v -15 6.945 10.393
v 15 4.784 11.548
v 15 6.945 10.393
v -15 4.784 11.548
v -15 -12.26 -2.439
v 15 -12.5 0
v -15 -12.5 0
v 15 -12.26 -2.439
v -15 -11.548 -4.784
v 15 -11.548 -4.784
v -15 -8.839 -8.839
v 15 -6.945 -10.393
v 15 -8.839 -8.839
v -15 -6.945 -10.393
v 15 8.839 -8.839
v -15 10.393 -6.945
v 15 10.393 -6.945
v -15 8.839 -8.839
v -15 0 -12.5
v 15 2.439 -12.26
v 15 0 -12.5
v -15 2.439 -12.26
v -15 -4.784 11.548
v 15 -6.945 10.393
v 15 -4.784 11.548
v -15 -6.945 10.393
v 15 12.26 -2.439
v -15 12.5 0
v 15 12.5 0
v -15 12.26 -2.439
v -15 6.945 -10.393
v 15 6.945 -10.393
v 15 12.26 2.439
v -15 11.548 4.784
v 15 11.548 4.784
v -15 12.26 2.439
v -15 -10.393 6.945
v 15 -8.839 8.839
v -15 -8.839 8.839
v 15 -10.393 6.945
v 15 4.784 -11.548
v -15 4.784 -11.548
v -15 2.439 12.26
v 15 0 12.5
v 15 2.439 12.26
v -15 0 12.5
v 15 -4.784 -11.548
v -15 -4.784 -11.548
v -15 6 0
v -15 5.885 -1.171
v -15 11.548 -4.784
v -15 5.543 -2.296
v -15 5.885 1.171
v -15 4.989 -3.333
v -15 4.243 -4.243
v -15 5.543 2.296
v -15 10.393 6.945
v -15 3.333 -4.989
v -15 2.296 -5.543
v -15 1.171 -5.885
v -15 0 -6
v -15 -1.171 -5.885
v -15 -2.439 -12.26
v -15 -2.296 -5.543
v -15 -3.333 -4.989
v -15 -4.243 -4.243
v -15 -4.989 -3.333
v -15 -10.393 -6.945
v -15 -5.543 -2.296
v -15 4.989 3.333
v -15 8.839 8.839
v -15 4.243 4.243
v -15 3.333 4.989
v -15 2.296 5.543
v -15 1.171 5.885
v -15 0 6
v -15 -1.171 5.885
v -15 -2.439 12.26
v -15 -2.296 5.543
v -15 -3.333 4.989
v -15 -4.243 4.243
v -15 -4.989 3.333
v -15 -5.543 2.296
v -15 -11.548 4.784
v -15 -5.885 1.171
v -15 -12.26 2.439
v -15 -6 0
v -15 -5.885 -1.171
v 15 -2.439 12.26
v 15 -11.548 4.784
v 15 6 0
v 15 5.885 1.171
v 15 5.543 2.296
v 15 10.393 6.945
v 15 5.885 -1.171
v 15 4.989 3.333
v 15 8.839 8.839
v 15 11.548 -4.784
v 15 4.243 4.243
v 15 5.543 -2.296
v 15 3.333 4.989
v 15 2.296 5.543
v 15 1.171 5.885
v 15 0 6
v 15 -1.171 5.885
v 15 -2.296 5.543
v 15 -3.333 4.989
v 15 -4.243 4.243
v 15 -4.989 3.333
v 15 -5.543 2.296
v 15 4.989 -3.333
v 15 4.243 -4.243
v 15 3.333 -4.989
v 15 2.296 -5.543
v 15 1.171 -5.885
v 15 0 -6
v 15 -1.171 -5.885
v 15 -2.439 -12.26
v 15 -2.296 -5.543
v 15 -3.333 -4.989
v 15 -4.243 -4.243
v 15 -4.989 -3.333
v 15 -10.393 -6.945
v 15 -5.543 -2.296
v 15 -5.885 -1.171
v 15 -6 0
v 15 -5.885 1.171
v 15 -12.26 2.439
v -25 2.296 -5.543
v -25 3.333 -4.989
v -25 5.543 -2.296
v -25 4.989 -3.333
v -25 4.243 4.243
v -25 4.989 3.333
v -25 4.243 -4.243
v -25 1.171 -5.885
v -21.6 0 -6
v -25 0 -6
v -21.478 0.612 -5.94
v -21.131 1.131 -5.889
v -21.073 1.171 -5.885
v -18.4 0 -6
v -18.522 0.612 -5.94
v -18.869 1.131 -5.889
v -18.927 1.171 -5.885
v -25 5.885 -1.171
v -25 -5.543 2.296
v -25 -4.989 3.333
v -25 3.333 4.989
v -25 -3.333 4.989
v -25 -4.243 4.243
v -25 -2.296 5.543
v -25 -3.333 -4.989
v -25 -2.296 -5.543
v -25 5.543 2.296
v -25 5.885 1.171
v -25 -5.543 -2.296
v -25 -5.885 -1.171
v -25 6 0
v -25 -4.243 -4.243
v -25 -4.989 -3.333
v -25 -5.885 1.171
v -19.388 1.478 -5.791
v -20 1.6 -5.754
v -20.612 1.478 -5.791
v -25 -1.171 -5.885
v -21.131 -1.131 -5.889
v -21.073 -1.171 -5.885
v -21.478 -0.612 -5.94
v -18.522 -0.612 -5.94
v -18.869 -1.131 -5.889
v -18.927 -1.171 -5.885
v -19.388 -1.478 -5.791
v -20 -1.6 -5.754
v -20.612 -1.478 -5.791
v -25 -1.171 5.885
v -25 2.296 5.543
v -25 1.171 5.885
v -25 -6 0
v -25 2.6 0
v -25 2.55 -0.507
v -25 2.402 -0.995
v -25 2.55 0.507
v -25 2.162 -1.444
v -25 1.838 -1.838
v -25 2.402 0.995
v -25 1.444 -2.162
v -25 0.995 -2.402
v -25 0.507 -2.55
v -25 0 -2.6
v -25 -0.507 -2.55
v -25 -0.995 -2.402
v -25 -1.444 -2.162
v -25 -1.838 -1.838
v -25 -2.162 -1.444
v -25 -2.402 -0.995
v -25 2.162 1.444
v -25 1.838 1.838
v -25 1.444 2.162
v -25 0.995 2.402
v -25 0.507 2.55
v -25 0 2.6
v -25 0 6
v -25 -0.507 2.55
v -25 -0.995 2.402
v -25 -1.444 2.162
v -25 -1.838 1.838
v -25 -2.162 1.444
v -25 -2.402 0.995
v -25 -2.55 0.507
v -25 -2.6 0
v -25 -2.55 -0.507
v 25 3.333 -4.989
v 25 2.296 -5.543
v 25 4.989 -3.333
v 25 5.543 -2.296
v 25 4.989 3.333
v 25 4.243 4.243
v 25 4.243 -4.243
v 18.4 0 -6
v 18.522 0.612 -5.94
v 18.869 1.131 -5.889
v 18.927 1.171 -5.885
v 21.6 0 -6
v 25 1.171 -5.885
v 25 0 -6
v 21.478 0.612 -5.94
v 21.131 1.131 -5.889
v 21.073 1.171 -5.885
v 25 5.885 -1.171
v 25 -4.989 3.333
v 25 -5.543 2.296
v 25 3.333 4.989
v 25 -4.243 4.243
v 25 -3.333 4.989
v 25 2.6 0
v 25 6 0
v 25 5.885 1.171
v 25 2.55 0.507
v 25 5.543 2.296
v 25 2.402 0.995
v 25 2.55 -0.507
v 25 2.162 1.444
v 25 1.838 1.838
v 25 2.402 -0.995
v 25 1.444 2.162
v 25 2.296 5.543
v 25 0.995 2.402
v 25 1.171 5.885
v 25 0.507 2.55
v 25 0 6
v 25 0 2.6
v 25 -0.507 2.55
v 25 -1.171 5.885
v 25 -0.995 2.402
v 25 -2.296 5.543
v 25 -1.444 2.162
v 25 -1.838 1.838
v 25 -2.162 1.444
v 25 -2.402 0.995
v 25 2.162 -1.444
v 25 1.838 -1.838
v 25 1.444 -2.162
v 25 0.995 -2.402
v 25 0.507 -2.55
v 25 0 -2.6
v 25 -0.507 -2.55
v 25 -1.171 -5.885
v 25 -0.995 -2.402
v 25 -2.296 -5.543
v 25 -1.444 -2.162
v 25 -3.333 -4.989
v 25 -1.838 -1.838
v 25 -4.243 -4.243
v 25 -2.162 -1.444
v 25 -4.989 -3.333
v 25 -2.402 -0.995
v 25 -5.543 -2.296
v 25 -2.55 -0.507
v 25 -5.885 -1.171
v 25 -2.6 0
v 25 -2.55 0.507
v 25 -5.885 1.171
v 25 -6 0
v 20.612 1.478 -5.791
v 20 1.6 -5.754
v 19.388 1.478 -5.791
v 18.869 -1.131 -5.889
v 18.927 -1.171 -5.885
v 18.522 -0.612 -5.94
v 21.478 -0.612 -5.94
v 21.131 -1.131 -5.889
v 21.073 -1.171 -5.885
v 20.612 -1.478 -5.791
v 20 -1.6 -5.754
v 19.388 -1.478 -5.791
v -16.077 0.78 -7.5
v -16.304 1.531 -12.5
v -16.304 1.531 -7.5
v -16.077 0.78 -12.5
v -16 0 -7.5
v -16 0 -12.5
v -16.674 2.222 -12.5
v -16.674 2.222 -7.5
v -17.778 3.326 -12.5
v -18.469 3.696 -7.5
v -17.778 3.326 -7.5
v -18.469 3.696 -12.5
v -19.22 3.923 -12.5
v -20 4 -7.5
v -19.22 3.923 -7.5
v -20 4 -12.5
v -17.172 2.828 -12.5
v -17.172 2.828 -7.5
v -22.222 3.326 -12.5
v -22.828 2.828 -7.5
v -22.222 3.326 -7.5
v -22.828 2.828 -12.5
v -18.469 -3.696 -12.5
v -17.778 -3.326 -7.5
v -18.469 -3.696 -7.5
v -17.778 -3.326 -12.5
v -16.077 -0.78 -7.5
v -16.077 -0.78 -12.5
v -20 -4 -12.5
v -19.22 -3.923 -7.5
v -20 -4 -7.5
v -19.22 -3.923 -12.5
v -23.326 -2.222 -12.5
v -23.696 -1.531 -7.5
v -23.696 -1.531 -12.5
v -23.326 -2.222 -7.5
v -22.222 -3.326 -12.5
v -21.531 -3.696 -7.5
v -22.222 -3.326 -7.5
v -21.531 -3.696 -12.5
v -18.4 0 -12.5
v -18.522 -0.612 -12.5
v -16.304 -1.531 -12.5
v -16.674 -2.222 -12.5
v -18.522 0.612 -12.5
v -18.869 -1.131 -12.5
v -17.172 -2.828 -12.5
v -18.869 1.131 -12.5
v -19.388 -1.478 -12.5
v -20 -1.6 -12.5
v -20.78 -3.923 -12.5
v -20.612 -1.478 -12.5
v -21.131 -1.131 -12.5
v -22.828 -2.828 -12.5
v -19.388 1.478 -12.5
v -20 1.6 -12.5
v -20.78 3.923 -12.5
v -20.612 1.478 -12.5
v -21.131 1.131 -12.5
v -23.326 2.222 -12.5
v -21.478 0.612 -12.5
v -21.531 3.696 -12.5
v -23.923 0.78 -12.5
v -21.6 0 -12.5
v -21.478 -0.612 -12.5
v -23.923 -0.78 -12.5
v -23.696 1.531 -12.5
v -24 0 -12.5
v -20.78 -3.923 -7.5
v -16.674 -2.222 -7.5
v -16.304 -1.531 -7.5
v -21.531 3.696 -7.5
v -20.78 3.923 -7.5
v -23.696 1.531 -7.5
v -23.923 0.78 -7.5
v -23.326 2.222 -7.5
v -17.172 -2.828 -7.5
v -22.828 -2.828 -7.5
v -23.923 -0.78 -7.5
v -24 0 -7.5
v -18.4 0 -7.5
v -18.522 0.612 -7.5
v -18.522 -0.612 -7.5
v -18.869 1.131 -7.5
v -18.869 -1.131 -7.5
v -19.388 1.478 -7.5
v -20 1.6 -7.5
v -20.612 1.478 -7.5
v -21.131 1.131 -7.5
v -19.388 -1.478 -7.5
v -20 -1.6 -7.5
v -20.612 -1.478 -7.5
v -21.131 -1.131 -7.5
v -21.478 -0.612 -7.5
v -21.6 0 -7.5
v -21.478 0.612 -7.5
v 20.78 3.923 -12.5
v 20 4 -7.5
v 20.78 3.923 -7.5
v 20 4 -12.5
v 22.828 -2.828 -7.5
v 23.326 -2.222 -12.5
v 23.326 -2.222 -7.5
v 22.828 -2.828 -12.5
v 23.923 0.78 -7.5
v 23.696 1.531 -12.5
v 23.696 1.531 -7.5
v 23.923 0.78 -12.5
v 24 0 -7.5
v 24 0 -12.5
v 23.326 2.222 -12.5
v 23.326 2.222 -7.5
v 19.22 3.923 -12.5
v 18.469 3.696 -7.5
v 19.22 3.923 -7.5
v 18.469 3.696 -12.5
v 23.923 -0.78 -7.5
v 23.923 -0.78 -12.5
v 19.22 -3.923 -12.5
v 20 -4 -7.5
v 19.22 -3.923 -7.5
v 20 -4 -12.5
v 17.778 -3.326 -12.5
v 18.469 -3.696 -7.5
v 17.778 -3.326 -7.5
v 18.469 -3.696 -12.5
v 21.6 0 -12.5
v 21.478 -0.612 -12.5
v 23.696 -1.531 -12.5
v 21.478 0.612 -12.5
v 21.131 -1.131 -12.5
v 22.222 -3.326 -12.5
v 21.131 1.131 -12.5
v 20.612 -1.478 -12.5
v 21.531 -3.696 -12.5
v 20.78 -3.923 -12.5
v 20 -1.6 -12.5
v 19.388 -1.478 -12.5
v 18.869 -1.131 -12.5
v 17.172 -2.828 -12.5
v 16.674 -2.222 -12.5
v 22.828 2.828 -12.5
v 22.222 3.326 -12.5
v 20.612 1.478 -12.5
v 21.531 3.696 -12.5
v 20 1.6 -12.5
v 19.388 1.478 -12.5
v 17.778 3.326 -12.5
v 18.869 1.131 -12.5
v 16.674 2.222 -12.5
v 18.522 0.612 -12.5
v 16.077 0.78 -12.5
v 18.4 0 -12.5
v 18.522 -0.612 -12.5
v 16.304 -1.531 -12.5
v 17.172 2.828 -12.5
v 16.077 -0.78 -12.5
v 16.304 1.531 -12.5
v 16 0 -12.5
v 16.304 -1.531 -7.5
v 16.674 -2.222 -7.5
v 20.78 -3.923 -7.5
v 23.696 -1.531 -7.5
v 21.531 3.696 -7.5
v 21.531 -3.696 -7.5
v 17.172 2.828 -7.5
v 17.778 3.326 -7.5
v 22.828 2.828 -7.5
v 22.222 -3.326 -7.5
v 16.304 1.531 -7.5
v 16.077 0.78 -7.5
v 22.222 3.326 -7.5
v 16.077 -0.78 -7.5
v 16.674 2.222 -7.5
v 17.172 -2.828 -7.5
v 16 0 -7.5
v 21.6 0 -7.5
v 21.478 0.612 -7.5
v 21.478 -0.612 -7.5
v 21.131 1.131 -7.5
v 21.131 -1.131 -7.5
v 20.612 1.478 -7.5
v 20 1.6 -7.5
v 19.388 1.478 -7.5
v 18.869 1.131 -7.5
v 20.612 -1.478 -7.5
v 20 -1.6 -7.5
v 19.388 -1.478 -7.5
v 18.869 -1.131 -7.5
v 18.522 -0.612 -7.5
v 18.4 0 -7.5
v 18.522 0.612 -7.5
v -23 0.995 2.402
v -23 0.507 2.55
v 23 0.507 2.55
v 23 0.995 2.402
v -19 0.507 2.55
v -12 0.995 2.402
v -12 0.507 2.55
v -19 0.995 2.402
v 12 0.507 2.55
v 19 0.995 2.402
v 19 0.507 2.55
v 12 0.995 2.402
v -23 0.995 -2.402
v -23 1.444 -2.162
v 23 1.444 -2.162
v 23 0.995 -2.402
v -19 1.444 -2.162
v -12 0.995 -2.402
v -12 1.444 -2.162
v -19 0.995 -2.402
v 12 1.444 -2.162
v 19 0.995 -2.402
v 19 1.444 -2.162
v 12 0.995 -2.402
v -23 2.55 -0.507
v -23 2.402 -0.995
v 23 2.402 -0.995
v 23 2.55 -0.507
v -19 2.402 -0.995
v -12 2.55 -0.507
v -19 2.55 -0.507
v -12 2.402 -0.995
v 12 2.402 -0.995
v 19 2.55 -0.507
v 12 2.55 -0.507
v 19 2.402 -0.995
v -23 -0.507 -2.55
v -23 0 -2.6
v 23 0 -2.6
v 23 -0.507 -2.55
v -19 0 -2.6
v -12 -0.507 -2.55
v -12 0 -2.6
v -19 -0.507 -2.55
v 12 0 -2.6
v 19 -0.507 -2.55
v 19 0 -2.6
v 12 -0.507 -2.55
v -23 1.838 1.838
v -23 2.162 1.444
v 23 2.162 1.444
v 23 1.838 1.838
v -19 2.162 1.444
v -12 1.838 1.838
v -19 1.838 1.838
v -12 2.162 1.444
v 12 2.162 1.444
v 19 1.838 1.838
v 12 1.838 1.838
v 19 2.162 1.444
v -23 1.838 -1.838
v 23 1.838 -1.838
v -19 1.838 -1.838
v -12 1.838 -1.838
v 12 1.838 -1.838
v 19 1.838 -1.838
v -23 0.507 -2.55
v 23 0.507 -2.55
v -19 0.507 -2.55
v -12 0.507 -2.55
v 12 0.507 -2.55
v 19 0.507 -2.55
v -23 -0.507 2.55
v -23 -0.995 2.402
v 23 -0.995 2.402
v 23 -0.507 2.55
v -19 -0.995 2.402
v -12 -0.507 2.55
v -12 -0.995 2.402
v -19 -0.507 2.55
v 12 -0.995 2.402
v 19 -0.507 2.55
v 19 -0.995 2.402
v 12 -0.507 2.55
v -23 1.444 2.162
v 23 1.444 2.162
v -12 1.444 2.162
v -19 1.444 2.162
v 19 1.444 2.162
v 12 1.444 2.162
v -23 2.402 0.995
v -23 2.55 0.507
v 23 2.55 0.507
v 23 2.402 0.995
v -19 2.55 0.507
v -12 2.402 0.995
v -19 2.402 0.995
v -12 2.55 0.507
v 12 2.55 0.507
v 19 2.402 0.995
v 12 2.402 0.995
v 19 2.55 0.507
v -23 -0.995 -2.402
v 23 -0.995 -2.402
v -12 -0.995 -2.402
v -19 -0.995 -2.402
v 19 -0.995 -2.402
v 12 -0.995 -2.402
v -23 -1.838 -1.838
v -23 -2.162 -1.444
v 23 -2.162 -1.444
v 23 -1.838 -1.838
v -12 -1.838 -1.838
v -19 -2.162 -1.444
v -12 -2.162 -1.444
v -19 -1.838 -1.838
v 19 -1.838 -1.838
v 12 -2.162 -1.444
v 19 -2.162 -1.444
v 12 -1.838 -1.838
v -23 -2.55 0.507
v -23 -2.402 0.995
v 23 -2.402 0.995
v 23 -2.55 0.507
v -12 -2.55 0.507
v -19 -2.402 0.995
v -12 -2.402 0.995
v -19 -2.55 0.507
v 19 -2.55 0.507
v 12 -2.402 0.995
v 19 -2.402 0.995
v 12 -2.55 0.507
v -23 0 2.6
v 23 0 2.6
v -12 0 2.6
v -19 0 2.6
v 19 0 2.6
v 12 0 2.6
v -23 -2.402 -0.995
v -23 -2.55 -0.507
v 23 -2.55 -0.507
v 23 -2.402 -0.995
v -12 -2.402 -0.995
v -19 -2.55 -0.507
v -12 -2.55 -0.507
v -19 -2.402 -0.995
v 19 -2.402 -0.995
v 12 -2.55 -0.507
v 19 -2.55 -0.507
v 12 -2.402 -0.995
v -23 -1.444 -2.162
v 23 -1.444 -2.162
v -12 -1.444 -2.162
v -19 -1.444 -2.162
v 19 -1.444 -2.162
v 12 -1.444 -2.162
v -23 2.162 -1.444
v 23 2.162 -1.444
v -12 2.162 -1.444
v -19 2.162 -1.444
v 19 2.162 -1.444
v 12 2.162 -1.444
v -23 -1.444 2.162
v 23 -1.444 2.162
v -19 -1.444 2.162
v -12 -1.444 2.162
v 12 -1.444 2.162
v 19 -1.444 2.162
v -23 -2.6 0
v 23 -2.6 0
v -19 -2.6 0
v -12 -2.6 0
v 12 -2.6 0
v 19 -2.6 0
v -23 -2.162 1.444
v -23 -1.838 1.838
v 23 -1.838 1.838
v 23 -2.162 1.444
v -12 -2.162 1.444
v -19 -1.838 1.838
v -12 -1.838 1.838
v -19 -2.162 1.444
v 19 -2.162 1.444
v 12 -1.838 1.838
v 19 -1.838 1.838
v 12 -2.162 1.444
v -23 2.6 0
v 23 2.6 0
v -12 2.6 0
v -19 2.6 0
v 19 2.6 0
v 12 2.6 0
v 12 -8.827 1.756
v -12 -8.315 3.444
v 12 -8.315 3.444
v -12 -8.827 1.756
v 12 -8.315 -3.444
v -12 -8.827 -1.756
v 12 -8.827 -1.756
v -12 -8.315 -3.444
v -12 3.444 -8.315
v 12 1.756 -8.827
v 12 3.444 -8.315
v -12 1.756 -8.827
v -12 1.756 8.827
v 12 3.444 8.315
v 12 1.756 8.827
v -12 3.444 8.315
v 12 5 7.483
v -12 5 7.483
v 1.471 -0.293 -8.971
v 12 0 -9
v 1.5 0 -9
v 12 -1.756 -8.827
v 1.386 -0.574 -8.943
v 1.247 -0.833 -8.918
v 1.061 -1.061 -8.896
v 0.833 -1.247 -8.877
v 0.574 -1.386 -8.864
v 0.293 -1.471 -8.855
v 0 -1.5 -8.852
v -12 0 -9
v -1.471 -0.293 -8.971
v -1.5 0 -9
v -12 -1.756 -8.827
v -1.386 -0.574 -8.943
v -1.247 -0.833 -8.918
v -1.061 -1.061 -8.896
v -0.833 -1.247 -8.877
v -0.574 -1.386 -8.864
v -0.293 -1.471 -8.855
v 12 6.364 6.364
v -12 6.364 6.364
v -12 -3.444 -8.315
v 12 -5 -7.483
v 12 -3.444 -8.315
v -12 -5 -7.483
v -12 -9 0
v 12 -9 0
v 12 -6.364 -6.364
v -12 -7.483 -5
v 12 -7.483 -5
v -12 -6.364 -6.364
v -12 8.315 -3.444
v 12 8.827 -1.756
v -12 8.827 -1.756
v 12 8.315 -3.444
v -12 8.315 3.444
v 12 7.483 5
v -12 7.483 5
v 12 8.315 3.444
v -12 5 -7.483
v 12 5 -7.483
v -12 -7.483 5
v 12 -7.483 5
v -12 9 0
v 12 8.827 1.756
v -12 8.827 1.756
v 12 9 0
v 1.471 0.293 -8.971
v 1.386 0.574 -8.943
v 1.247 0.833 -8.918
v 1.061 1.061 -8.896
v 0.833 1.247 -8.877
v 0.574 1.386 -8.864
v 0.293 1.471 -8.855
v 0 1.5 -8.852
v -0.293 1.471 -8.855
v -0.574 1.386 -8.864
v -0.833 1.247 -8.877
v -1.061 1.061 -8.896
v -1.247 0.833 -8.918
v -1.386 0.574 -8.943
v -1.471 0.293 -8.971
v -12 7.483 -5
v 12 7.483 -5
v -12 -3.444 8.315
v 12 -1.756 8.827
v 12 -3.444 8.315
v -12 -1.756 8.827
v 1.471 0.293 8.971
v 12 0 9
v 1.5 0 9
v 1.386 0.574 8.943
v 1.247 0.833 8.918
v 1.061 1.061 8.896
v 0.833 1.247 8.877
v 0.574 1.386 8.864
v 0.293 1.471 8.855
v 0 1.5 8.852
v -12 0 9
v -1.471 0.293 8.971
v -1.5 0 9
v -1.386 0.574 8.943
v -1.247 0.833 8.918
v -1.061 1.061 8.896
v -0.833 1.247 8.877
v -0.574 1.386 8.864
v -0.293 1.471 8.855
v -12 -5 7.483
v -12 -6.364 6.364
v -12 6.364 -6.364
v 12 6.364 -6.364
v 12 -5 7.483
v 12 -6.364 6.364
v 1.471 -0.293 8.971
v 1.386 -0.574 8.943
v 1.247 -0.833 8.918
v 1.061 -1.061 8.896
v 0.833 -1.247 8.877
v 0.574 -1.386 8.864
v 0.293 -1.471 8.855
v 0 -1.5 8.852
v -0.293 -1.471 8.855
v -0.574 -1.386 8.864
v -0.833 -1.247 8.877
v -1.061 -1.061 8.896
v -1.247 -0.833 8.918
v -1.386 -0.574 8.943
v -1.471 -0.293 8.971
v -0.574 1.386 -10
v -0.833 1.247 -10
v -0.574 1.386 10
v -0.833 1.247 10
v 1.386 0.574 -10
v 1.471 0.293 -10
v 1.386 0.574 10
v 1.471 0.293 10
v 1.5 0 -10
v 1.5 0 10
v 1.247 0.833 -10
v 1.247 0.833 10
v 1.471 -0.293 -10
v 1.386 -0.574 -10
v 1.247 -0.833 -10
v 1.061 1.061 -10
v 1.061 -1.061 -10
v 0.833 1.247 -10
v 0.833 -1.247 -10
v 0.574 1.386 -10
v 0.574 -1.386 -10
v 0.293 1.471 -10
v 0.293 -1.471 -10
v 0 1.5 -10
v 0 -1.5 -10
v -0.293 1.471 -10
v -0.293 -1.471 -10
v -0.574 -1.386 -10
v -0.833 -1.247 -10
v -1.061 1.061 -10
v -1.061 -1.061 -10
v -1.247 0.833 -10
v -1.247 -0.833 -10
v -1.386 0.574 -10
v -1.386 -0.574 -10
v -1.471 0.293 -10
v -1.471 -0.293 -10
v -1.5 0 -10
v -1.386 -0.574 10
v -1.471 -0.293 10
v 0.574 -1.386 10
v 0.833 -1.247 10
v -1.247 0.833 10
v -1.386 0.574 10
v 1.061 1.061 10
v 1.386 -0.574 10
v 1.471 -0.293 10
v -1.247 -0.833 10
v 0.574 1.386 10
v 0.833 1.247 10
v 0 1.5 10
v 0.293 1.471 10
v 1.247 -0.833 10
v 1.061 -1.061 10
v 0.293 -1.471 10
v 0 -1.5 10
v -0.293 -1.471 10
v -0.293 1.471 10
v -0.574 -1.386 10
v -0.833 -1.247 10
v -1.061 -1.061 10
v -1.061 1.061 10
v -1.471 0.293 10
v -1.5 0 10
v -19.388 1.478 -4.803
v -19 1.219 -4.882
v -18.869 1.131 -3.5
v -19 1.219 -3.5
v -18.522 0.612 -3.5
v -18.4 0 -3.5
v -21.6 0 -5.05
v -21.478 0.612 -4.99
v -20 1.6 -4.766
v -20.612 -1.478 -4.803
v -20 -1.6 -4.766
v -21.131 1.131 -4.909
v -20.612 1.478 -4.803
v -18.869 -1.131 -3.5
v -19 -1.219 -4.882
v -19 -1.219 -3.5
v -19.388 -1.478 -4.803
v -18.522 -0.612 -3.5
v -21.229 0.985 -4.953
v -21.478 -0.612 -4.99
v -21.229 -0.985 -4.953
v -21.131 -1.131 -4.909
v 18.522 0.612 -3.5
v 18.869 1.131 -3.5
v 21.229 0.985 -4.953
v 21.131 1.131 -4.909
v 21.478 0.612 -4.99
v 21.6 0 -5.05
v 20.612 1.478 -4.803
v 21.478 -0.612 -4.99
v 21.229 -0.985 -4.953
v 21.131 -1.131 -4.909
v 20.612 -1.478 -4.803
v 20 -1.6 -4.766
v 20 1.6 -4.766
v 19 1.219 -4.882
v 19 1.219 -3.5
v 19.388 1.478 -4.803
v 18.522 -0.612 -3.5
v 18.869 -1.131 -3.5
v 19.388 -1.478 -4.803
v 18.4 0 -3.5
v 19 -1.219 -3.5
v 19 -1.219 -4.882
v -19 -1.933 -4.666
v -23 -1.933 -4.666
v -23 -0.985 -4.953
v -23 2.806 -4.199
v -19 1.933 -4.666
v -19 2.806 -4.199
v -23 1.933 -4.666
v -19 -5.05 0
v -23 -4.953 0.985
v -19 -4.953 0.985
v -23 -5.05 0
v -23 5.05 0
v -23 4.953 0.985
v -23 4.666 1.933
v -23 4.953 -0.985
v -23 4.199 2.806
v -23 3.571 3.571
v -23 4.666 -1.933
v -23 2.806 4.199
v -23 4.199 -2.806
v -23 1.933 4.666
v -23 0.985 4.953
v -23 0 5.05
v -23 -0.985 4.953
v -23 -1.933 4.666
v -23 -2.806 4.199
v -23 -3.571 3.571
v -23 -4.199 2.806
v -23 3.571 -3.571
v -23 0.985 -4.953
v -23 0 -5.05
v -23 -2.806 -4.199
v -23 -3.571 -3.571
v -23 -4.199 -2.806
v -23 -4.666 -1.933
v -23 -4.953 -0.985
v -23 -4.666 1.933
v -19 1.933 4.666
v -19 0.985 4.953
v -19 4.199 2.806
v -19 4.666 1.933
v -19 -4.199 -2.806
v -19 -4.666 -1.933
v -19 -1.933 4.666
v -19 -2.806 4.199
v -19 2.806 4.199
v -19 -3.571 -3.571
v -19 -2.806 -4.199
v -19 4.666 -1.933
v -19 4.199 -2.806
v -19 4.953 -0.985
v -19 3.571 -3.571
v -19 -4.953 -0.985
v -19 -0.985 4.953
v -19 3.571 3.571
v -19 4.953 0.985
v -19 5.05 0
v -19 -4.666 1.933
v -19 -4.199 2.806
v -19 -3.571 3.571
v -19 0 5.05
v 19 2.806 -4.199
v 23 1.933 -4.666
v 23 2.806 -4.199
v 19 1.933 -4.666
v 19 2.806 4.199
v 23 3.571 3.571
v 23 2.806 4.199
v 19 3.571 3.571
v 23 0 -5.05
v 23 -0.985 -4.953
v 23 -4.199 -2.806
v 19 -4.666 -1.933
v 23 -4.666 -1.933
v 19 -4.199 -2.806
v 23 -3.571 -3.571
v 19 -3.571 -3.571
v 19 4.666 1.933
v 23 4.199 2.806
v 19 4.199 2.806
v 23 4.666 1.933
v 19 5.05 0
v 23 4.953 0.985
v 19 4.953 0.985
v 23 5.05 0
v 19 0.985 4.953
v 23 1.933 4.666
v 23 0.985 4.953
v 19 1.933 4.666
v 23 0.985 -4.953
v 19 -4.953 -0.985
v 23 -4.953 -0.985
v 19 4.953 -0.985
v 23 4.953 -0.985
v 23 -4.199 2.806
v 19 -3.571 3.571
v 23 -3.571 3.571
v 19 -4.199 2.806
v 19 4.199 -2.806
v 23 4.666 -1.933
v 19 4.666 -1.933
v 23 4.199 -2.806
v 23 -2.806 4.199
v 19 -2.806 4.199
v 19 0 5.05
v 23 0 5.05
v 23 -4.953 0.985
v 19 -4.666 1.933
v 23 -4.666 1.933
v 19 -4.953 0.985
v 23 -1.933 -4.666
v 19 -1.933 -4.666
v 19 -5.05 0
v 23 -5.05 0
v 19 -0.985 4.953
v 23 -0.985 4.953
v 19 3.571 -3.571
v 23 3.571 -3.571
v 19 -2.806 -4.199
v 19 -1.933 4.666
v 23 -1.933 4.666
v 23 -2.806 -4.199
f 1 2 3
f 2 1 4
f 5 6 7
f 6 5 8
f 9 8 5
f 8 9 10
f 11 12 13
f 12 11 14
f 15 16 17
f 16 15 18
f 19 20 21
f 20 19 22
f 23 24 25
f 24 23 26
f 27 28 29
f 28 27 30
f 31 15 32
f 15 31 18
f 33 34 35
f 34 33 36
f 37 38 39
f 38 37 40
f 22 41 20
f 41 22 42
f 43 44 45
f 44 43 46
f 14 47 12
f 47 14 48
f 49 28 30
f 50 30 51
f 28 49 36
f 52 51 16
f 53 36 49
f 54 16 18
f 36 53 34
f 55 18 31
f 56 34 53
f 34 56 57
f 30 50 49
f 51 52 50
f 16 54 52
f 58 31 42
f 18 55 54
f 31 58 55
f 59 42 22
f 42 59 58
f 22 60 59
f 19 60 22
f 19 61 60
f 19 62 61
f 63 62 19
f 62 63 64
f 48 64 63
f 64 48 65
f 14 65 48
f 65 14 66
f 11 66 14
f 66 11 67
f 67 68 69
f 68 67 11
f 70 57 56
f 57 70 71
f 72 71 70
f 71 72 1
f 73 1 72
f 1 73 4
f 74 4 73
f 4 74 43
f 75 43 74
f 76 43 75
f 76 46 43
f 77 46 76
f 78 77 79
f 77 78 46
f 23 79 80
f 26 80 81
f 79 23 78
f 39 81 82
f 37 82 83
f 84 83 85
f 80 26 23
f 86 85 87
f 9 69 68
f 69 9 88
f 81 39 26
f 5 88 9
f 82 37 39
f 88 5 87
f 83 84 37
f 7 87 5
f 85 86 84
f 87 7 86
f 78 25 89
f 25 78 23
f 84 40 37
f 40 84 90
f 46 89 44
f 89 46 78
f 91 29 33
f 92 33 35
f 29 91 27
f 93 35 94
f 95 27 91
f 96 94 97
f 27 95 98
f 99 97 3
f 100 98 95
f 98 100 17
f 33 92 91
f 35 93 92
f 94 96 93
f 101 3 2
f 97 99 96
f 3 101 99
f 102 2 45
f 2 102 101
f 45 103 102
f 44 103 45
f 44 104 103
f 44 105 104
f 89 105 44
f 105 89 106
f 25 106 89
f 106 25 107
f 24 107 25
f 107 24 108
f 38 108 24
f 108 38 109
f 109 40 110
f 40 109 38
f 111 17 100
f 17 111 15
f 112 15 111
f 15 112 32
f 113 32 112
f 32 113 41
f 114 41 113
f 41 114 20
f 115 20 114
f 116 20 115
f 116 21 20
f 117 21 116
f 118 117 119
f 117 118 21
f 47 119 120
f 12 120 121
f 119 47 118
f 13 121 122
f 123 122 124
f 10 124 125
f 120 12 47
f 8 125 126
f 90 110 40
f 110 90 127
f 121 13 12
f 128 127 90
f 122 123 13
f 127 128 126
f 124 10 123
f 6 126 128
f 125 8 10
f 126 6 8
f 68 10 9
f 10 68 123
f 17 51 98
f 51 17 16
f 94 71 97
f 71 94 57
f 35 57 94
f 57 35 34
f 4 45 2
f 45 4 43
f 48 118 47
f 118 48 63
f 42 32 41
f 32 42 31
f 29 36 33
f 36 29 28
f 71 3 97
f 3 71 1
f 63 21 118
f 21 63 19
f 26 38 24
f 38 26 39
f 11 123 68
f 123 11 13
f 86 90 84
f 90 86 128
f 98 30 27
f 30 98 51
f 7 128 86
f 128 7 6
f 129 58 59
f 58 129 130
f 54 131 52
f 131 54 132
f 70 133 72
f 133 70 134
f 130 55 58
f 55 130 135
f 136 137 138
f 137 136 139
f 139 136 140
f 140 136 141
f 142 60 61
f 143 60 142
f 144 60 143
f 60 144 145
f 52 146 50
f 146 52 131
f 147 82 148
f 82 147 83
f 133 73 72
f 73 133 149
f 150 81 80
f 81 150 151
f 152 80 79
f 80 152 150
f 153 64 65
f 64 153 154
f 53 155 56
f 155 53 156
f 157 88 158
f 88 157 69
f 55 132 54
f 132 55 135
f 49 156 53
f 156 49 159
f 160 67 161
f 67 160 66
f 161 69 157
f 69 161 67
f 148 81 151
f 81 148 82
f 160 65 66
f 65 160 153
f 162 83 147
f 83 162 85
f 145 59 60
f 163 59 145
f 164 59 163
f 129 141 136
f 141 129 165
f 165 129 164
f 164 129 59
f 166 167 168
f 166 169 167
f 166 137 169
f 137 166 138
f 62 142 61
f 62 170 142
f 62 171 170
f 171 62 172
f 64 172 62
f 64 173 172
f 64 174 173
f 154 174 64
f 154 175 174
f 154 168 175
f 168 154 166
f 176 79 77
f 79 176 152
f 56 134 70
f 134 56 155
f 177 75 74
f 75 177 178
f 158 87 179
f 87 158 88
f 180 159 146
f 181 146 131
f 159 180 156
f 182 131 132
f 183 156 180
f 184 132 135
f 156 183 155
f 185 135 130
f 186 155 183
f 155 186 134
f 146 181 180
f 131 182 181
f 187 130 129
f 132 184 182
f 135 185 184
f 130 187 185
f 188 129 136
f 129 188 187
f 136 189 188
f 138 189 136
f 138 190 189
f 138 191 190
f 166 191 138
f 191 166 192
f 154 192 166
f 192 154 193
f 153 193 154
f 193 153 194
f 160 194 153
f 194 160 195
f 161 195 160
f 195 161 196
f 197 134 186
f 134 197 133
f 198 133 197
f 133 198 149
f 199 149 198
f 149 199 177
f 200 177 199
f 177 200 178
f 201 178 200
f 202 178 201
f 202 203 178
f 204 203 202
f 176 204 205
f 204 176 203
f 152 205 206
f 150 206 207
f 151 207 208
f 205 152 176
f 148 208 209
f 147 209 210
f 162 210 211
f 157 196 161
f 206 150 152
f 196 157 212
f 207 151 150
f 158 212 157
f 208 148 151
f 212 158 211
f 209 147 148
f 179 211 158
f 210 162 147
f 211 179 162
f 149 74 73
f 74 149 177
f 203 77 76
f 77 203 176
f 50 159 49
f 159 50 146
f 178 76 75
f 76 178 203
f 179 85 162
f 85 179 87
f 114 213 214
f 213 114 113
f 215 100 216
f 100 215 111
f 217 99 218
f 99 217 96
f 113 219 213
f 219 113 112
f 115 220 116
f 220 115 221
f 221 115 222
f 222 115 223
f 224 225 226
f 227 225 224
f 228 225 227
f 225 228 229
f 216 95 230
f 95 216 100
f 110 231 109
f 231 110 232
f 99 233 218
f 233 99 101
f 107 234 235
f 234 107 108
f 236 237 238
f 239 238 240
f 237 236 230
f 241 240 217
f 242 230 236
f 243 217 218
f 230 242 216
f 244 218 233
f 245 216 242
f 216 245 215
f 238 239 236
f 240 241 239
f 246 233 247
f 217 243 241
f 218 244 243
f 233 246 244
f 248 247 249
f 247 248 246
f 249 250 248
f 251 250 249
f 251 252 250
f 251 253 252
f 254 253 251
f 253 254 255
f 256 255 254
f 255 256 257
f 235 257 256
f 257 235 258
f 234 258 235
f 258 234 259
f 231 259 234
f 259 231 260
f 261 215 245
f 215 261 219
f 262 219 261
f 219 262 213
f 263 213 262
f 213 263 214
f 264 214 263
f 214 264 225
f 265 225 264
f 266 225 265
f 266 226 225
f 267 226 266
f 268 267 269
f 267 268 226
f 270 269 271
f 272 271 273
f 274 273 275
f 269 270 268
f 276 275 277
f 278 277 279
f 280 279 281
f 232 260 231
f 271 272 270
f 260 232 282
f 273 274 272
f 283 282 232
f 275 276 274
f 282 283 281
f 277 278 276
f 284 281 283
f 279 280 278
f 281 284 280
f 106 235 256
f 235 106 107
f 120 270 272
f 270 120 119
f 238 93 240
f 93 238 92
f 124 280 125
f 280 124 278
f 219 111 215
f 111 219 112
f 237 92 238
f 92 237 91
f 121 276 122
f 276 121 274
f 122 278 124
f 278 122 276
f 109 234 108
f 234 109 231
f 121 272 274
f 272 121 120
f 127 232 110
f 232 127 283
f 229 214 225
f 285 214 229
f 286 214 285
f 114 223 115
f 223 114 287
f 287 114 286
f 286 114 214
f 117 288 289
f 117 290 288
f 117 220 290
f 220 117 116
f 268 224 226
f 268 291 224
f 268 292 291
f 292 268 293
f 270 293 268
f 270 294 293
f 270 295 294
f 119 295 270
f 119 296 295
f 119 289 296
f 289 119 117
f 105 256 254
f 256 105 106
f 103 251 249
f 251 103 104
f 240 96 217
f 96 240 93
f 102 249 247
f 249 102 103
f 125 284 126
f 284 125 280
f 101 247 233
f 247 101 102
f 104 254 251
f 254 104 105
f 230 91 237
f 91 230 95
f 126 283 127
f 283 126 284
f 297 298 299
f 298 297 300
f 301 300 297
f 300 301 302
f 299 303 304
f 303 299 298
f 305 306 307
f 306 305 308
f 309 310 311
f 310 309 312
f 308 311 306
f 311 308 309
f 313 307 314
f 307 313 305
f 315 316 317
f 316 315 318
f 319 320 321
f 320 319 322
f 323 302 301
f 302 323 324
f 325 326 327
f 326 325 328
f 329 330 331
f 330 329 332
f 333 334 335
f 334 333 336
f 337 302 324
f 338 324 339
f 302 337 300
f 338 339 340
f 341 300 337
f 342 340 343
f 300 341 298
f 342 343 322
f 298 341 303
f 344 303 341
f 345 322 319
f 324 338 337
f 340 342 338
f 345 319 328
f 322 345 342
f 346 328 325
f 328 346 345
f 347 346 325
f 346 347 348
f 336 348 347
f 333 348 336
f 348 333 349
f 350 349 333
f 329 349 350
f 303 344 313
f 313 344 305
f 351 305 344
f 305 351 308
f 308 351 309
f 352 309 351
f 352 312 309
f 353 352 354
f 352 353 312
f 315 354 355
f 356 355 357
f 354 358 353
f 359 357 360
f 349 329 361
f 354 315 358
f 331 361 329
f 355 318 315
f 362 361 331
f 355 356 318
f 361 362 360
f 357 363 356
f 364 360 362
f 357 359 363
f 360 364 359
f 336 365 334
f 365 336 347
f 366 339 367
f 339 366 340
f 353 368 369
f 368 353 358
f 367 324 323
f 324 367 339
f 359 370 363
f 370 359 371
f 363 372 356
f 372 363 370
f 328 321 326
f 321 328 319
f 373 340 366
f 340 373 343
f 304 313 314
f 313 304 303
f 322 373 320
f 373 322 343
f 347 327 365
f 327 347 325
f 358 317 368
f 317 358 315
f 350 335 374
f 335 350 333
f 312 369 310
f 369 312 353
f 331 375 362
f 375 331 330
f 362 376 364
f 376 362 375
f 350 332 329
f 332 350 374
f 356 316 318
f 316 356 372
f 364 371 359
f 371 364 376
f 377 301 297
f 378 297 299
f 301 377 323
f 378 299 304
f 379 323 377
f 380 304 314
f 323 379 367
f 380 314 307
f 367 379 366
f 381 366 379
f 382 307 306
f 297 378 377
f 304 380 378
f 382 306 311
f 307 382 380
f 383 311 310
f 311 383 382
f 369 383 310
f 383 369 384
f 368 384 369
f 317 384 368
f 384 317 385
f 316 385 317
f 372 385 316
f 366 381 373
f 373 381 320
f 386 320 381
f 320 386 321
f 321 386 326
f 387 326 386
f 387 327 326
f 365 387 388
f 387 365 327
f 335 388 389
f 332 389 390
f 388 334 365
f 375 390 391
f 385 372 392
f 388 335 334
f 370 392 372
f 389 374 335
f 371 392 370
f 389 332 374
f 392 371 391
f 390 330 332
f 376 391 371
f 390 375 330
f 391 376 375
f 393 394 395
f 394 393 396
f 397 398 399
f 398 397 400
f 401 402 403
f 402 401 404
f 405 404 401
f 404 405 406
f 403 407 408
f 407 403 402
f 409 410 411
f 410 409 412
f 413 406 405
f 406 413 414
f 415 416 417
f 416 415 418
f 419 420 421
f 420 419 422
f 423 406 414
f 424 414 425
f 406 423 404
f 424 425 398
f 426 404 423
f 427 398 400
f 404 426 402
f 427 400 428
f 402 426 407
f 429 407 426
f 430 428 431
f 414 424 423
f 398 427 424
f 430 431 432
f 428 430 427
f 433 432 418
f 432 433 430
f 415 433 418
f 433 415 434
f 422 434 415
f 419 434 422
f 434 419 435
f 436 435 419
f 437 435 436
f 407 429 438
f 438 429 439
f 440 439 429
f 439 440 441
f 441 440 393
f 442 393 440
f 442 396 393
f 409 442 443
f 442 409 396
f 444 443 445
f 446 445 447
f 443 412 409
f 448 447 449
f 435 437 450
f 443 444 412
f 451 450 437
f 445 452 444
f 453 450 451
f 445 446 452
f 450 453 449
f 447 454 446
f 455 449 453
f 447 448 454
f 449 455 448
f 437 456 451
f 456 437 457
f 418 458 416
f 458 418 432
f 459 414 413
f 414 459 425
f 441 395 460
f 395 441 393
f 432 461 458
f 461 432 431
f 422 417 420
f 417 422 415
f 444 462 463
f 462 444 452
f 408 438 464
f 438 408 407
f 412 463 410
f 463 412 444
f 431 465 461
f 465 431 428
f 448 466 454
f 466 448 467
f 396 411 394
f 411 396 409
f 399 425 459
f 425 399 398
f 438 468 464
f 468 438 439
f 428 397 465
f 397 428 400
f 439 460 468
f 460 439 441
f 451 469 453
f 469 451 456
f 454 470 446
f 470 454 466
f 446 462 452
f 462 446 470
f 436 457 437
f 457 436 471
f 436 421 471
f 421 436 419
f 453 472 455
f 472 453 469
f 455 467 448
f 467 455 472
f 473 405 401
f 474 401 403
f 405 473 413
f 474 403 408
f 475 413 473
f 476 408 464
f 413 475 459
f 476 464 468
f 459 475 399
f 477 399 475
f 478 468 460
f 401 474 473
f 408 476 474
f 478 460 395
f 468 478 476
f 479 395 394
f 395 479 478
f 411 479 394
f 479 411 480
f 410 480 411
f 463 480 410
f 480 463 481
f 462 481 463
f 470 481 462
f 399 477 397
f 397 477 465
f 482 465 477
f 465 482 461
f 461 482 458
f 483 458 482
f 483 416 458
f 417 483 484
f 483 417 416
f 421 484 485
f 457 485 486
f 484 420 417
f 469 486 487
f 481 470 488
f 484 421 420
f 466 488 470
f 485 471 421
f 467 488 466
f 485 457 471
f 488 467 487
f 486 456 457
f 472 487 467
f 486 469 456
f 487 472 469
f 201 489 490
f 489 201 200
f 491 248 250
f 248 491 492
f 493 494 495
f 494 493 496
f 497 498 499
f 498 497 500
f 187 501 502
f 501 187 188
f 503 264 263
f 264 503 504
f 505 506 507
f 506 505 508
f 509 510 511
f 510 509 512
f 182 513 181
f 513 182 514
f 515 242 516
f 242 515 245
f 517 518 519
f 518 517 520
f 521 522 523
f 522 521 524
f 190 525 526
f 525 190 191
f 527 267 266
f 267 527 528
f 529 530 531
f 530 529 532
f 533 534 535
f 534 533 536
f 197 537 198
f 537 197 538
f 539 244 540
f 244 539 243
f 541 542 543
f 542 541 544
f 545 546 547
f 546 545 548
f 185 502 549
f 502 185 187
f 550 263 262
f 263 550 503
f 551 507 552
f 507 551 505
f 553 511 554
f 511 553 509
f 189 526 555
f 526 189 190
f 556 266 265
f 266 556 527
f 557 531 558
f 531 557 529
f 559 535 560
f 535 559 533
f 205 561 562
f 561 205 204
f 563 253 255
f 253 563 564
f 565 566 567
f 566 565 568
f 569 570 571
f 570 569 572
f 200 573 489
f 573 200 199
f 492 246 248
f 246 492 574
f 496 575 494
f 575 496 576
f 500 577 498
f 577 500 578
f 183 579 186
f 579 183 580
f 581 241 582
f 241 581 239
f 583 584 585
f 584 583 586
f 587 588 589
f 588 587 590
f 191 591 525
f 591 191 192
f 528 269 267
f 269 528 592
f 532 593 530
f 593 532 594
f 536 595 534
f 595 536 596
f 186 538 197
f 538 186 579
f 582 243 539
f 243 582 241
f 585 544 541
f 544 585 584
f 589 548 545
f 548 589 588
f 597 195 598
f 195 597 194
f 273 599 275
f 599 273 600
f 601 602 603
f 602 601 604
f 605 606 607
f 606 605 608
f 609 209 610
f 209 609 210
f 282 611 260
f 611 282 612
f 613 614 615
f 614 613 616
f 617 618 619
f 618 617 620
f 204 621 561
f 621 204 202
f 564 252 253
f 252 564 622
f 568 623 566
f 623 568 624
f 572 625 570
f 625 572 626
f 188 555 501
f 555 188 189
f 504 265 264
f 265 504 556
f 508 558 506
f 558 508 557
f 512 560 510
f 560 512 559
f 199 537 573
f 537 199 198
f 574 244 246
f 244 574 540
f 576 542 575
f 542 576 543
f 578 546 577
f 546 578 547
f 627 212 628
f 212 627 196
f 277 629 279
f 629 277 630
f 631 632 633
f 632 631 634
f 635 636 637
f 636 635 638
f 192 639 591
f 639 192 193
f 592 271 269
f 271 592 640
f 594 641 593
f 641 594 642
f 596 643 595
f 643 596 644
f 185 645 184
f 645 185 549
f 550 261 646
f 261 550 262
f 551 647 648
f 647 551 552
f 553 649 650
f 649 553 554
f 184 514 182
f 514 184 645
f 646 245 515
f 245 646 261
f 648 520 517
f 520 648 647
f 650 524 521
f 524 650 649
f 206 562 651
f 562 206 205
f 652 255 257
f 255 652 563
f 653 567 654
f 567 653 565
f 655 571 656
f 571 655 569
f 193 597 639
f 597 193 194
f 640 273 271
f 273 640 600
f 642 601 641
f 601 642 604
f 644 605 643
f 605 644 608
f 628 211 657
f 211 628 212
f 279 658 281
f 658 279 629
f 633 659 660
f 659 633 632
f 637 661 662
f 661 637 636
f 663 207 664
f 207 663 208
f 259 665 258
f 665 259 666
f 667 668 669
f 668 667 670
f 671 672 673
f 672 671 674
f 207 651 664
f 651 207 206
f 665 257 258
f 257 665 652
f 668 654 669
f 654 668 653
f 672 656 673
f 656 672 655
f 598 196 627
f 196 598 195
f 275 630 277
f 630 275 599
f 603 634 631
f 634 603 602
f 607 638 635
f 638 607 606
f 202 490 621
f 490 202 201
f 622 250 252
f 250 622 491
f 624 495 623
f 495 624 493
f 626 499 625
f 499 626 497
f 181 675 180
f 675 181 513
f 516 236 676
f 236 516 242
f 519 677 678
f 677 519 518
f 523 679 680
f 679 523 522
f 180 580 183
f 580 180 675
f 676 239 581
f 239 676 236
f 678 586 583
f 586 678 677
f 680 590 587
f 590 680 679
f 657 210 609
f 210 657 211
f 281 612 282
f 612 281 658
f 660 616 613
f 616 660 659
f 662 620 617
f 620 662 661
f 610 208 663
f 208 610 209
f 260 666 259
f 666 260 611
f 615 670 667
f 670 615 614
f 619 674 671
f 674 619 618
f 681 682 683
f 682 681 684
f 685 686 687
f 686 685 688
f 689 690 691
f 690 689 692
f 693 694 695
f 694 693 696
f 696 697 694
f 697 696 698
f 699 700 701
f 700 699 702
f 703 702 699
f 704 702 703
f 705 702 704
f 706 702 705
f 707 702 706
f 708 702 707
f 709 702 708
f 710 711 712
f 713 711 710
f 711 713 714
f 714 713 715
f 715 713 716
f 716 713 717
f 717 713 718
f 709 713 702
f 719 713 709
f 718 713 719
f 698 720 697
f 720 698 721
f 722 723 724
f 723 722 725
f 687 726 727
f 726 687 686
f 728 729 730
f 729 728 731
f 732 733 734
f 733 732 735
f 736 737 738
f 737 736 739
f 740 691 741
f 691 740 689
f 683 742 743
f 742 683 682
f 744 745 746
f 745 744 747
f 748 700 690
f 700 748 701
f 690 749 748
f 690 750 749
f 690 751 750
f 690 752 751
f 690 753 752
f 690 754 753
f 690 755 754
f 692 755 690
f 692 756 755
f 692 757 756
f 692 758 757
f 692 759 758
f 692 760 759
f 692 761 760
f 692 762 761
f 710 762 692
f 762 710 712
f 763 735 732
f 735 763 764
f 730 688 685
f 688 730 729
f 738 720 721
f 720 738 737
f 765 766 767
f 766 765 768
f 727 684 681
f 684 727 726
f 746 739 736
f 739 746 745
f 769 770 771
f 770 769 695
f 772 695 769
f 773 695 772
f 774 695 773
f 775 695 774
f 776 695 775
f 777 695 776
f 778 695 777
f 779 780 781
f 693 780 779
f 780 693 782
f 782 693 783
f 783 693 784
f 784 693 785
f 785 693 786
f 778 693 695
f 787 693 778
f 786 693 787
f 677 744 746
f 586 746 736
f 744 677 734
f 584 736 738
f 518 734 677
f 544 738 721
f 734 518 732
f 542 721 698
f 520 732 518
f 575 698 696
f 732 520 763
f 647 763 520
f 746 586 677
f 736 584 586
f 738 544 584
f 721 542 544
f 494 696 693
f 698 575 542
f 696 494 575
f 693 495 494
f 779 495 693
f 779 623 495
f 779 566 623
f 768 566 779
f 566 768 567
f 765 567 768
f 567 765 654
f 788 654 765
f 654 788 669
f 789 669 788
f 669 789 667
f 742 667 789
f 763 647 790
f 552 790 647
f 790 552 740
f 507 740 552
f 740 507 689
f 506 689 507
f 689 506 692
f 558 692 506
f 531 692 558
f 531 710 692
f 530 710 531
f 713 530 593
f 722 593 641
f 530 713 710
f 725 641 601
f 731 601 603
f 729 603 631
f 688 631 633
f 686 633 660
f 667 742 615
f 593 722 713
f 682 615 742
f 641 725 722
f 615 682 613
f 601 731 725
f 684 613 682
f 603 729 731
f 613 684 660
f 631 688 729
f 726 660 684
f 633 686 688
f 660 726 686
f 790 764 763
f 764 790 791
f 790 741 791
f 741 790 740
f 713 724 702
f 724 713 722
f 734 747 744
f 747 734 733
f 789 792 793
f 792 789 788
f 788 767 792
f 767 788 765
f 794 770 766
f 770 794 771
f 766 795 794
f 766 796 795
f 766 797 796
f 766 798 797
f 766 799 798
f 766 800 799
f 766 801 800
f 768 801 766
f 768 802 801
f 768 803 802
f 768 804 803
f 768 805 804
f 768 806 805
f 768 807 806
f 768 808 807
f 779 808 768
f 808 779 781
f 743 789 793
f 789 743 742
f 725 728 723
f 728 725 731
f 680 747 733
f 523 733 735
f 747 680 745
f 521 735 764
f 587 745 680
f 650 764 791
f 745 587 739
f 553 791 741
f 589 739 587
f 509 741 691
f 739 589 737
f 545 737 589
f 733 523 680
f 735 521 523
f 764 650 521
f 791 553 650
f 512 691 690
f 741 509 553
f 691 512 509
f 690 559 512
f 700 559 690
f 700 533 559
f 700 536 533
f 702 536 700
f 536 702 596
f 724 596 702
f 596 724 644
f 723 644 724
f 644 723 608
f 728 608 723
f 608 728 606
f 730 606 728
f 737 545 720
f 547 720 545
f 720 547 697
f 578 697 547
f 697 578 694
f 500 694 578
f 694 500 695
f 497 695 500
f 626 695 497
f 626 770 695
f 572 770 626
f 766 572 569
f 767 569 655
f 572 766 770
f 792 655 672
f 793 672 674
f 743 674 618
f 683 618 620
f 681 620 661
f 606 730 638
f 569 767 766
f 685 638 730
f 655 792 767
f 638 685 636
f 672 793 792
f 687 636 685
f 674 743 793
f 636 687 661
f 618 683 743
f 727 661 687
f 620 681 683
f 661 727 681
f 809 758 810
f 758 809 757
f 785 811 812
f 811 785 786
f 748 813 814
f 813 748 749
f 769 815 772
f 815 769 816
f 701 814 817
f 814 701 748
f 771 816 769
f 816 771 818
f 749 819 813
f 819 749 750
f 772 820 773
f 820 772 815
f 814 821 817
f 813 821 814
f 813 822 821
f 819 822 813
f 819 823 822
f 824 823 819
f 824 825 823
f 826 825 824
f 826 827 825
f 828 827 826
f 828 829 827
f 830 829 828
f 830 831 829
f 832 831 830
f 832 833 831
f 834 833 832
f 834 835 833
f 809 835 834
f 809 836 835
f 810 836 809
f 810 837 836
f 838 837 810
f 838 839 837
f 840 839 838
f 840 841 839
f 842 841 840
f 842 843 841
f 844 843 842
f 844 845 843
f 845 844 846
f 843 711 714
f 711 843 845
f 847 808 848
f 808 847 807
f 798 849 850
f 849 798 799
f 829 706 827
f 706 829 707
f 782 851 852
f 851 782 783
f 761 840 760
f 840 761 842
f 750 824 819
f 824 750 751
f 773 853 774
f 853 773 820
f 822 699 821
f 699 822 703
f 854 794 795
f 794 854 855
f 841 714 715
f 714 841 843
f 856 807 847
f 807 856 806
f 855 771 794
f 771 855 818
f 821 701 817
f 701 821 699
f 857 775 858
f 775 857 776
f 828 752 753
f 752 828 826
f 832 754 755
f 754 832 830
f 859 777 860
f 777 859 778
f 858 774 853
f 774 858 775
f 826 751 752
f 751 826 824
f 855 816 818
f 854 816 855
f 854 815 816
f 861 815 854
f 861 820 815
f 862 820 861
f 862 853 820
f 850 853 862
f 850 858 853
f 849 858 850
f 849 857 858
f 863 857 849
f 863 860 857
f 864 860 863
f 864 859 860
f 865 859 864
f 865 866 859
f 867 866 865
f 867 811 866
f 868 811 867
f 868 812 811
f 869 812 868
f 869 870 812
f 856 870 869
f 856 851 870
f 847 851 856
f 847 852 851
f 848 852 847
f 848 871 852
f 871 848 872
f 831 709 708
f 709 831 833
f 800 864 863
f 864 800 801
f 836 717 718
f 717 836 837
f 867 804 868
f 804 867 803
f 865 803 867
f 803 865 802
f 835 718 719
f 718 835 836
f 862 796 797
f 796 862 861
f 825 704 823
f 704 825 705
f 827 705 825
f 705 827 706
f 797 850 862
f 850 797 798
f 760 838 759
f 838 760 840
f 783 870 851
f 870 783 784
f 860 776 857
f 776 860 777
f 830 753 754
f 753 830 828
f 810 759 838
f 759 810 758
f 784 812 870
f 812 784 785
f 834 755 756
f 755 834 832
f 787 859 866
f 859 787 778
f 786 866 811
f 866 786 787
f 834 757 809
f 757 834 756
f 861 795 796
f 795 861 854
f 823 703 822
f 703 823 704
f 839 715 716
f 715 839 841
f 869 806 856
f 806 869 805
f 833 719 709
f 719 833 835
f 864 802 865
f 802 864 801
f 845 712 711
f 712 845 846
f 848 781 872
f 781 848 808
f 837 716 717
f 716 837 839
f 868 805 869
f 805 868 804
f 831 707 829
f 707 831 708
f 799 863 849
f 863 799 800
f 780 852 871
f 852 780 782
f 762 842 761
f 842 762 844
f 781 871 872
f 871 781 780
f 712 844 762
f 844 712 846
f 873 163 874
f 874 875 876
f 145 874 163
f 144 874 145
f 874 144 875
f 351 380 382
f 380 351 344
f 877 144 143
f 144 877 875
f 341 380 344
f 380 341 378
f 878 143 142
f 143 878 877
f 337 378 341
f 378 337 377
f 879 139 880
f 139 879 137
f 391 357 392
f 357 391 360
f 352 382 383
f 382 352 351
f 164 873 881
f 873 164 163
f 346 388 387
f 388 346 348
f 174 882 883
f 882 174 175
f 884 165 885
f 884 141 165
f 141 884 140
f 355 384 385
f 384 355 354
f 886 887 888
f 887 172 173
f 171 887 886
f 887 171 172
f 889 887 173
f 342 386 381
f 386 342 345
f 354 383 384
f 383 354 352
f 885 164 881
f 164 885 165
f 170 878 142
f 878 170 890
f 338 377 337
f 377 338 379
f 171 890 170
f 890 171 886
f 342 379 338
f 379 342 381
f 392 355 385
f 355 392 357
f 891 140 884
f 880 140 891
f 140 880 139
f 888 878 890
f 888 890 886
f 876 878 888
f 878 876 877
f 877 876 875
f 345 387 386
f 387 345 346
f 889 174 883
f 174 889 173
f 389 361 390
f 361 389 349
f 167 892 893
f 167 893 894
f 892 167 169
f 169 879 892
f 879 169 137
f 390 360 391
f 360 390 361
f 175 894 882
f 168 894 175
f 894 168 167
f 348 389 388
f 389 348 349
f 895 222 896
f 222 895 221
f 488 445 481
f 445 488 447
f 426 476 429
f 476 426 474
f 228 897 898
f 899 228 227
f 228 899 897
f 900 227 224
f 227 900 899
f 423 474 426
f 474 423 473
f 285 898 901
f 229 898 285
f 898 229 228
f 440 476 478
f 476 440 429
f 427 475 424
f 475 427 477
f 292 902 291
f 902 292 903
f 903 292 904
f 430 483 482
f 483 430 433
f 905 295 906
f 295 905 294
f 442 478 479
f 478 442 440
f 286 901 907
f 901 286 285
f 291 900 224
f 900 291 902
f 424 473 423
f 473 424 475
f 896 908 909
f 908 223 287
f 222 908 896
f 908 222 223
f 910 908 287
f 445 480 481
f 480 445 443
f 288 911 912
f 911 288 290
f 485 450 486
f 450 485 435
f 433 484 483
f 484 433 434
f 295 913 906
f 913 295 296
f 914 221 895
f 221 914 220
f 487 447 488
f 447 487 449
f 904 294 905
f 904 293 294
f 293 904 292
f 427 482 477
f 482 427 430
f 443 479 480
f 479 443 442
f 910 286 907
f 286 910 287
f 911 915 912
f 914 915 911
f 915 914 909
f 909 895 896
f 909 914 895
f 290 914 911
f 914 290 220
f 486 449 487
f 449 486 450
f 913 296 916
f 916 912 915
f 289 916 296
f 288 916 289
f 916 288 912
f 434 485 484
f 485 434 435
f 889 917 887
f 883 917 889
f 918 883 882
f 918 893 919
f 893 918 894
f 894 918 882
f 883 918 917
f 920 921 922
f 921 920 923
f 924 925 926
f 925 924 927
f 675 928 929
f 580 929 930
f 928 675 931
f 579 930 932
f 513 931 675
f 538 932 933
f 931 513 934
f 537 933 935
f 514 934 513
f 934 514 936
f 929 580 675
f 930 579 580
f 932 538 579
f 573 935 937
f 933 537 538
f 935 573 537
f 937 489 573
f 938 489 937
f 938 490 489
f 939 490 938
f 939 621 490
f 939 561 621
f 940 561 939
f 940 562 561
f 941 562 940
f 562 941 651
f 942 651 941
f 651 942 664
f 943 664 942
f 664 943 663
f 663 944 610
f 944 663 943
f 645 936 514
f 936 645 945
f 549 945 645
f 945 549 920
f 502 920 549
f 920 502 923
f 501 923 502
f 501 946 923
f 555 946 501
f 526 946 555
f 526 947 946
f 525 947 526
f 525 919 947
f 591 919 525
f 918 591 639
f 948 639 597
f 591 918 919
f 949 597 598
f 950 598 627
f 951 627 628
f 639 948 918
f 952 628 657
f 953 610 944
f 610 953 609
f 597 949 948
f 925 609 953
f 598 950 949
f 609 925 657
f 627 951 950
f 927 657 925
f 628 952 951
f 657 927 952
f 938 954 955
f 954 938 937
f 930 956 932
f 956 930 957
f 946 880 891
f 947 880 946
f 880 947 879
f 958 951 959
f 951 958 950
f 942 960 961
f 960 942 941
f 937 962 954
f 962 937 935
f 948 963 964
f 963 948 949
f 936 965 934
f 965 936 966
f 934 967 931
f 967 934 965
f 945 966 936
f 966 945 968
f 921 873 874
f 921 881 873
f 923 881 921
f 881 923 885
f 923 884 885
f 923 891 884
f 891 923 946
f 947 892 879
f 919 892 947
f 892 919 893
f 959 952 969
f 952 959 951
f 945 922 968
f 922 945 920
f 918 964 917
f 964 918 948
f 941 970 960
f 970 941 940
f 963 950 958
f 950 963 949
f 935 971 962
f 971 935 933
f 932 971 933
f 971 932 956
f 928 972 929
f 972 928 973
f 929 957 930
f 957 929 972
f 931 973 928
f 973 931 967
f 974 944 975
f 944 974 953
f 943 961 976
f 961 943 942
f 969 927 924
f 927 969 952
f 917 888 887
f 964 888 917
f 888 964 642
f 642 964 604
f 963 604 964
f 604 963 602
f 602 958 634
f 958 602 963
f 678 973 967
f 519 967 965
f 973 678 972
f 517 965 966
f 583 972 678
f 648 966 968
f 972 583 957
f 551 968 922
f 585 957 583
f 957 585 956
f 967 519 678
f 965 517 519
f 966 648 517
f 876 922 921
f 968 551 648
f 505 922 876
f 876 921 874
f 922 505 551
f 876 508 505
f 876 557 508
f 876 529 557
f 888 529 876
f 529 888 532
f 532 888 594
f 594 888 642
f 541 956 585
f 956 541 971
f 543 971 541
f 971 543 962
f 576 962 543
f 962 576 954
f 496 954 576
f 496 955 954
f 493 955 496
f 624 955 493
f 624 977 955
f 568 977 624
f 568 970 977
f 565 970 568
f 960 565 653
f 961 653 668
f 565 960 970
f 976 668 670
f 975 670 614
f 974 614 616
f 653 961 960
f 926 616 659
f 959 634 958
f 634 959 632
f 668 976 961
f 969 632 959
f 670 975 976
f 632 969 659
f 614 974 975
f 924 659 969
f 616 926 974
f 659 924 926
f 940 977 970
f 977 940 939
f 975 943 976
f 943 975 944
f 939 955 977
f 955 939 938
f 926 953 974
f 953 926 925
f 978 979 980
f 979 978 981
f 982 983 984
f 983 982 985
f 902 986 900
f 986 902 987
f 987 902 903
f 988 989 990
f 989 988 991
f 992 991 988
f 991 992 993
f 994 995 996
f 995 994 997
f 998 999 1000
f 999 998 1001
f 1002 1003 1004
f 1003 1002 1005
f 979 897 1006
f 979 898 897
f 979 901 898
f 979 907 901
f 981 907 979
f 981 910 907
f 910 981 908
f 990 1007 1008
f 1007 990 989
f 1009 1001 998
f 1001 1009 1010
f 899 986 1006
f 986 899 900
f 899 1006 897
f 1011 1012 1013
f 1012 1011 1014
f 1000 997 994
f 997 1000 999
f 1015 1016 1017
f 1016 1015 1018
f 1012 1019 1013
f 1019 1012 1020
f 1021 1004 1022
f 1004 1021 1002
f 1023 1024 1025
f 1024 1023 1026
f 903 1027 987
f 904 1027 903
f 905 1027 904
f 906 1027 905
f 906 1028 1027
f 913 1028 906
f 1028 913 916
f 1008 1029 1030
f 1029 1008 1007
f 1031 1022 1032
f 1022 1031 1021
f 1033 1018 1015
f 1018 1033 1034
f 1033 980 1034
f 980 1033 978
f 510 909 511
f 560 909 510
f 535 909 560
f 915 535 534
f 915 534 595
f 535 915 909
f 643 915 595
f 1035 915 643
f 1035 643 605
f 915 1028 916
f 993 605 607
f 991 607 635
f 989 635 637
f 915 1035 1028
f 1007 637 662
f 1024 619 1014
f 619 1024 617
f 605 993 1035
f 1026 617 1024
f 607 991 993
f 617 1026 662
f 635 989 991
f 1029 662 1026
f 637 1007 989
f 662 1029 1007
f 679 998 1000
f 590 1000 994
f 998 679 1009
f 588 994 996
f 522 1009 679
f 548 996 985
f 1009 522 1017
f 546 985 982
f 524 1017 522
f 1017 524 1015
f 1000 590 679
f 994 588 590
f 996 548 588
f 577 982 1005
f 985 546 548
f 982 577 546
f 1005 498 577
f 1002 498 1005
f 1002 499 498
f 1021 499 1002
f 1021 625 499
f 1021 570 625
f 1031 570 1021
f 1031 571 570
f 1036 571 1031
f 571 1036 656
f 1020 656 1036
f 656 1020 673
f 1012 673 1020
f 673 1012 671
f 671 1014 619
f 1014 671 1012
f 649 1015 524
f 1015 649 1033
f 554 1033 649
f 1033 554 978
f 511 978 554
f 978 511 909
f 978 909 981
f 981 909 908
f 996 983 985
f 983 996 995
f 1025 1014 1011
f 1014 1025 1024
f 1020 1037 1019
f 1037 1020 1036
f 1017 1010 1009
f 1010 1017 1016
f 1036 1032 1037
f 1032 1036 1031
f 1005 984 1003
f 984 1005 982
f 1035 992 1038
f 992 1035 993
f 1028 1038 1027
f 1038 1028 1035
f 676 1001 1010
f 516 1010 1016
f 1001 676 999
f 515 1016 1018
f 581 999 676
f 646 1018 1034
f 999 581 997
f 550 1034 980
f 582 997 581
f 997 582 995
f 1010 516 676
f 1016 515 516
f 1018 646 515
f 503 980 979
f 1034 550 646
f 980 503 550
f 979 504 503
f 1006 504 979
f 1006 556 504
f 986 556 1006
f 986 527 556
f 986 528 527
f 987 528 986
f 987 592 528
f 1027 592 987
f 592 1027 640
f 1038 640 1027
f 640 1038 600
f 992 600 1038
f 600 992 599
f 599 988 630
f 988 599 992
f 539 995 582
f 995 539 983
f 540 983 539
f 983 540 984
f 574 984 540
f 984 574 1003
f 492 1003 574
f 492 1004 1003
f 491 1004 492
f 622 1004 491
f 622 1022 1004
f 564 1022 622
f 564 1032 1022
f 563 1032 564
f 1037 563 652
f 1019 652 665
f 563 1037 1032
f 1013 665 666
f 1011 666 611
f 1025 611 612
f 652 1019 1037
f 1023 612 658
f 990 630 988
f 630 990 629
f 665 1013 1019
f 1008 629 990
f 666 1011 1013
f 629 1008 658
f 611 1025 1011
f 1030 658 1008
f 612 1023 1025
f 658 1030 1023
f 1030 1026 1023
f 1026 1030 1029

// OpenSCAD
// ============================================
// ESP32 Rover - Differential Housing
// ============================================
// Design Specification v1.0
//
// Open differential housing for rear axle.
// Includes spur gear mount.
// ============================================

// Differential dimensions
diff_width = 50;  // Overall width
diff_body_dia = 25;
diff_body_length = 30;

// Axle
axle_dia = 5;
axle_bore = 5.2;

// Spur gear
spur_gear_dia = 48;  // 48T at M0.5 = 24mm pitch dia
spur_gear_bore = 8;
spur_gear_thickness = 5;
spur_gear_offset = 5;  // From center

// Spider gear cavity
spider_cavity_dia = 18;
spider_cavity_depth = 12;

// Mounting
mount_hole_dia = 3.2;
mount_hole_spacing = 40;

// Resolution
$fn = 32;

module differential_housing() {
    difference() {
        union() {
            // Main body
            rotate([0, 90, 0])
                cylinder(d = diff_body_dia, h = diff_body_length, center = true);

            // Axle housings
            translate([-diff_width / 2, 0, 0])
                rotate([0, 90, 0])
                    cylinder(d = 12, h = 10);
            translate([diff_width / 2 - 10, 0, 0])
                rotate([0, 90, 0])
                    cylinder(d = 12, h = 10);

            // Spur gear boss
            translate([spur_gear_offset, 0, 0])
                rotate([0, 90, 0])
                    cylinder(d = spur_gear_bore + 6, h = spur_gear_thickness);

            // Mounting ears
            translate([-mount_hole_spacing / 2, 0, -diff_body_dia / 2])
                cylinder(d = 8, h = 5);
            translate([mount_hole_spacing / 2, 0, -diff_body_dia / 2])
                cylinder(d = 8, h = 5);
        }

        // Axle bores
        translate([-diff_width / 2 - 1, 0, 0])
            rotate([0, 90, 0])
                cylinder(d = axle_bore, h = diff_width + 2);

        // Spider gear cavity (left)
        translate([-spider_cavity_depth / 2, 0, 0])
            rotate([0, 90, 0])
                cylinder(d = spider_cavity_dia, h = spider_cavity_depth, center = true);

        // Spider gear cavity (right)
        translate([spider_cavity_depth / 2, 0, 0])
            rotate([0, 90, 0])
                cylinder(d = spider_cavity_dia, h = spider_cavity_depth, center = true);

        // Cross pin hole
        translate([0, 0, -spider_cavity_dia / 2 - 1])
            cylinder(d = 3, h = spider_cavity_dia + 2);

        // Spur gear bore
        translate([spur_gear_offset - 1, 0, 0])
            rotate([0, 90, 0])
                cylinder(d = spur_gear_bore, h = spur_gear_thickness + 2);

        // Spur gear keyway
        translate([spur_gear_offset, -1.5, 0])
            rotate([0, 90, 0])
                cube([axle_dia, 3, spur_gear_thickness + 2], center = true);

        // Mounting holes
        translate([-mount_hole_spacing / 2, 0, -diff_body_dia / 2 - 1])
            cylinder(d = mount_hole_dia, h = 10, $fn = 16);
        translate([mount_hole_spacing / 2, 0, -diff_body_dia / 2 - 1])
            cylinder(d = mount_hole_dia, h = 10, $fn = 16);

        // Bearing seats (for 5x10x4 bearings)
        translate([-diff_width / 2 + 2, 0, 0])
            rotate([0, 90, 0])
                cylinder(d = 10.1, h = 4);
        translate([diff_width / 2 - 6, 0, 0])
            rotate([0, 90, 0])
                cylinder(d = 10.1, h = 4);

        // Assembly split line (for printing in two halves)
        // Uncomment one of these to create left or right half
        // translate([0, -20, -20]) cube([40, 40, 40]);  // Right half
        // translate([-40, -20, -20]) cube([40, 40, 40]); // Left half
    }
}

// Render the part
differential_housing();
